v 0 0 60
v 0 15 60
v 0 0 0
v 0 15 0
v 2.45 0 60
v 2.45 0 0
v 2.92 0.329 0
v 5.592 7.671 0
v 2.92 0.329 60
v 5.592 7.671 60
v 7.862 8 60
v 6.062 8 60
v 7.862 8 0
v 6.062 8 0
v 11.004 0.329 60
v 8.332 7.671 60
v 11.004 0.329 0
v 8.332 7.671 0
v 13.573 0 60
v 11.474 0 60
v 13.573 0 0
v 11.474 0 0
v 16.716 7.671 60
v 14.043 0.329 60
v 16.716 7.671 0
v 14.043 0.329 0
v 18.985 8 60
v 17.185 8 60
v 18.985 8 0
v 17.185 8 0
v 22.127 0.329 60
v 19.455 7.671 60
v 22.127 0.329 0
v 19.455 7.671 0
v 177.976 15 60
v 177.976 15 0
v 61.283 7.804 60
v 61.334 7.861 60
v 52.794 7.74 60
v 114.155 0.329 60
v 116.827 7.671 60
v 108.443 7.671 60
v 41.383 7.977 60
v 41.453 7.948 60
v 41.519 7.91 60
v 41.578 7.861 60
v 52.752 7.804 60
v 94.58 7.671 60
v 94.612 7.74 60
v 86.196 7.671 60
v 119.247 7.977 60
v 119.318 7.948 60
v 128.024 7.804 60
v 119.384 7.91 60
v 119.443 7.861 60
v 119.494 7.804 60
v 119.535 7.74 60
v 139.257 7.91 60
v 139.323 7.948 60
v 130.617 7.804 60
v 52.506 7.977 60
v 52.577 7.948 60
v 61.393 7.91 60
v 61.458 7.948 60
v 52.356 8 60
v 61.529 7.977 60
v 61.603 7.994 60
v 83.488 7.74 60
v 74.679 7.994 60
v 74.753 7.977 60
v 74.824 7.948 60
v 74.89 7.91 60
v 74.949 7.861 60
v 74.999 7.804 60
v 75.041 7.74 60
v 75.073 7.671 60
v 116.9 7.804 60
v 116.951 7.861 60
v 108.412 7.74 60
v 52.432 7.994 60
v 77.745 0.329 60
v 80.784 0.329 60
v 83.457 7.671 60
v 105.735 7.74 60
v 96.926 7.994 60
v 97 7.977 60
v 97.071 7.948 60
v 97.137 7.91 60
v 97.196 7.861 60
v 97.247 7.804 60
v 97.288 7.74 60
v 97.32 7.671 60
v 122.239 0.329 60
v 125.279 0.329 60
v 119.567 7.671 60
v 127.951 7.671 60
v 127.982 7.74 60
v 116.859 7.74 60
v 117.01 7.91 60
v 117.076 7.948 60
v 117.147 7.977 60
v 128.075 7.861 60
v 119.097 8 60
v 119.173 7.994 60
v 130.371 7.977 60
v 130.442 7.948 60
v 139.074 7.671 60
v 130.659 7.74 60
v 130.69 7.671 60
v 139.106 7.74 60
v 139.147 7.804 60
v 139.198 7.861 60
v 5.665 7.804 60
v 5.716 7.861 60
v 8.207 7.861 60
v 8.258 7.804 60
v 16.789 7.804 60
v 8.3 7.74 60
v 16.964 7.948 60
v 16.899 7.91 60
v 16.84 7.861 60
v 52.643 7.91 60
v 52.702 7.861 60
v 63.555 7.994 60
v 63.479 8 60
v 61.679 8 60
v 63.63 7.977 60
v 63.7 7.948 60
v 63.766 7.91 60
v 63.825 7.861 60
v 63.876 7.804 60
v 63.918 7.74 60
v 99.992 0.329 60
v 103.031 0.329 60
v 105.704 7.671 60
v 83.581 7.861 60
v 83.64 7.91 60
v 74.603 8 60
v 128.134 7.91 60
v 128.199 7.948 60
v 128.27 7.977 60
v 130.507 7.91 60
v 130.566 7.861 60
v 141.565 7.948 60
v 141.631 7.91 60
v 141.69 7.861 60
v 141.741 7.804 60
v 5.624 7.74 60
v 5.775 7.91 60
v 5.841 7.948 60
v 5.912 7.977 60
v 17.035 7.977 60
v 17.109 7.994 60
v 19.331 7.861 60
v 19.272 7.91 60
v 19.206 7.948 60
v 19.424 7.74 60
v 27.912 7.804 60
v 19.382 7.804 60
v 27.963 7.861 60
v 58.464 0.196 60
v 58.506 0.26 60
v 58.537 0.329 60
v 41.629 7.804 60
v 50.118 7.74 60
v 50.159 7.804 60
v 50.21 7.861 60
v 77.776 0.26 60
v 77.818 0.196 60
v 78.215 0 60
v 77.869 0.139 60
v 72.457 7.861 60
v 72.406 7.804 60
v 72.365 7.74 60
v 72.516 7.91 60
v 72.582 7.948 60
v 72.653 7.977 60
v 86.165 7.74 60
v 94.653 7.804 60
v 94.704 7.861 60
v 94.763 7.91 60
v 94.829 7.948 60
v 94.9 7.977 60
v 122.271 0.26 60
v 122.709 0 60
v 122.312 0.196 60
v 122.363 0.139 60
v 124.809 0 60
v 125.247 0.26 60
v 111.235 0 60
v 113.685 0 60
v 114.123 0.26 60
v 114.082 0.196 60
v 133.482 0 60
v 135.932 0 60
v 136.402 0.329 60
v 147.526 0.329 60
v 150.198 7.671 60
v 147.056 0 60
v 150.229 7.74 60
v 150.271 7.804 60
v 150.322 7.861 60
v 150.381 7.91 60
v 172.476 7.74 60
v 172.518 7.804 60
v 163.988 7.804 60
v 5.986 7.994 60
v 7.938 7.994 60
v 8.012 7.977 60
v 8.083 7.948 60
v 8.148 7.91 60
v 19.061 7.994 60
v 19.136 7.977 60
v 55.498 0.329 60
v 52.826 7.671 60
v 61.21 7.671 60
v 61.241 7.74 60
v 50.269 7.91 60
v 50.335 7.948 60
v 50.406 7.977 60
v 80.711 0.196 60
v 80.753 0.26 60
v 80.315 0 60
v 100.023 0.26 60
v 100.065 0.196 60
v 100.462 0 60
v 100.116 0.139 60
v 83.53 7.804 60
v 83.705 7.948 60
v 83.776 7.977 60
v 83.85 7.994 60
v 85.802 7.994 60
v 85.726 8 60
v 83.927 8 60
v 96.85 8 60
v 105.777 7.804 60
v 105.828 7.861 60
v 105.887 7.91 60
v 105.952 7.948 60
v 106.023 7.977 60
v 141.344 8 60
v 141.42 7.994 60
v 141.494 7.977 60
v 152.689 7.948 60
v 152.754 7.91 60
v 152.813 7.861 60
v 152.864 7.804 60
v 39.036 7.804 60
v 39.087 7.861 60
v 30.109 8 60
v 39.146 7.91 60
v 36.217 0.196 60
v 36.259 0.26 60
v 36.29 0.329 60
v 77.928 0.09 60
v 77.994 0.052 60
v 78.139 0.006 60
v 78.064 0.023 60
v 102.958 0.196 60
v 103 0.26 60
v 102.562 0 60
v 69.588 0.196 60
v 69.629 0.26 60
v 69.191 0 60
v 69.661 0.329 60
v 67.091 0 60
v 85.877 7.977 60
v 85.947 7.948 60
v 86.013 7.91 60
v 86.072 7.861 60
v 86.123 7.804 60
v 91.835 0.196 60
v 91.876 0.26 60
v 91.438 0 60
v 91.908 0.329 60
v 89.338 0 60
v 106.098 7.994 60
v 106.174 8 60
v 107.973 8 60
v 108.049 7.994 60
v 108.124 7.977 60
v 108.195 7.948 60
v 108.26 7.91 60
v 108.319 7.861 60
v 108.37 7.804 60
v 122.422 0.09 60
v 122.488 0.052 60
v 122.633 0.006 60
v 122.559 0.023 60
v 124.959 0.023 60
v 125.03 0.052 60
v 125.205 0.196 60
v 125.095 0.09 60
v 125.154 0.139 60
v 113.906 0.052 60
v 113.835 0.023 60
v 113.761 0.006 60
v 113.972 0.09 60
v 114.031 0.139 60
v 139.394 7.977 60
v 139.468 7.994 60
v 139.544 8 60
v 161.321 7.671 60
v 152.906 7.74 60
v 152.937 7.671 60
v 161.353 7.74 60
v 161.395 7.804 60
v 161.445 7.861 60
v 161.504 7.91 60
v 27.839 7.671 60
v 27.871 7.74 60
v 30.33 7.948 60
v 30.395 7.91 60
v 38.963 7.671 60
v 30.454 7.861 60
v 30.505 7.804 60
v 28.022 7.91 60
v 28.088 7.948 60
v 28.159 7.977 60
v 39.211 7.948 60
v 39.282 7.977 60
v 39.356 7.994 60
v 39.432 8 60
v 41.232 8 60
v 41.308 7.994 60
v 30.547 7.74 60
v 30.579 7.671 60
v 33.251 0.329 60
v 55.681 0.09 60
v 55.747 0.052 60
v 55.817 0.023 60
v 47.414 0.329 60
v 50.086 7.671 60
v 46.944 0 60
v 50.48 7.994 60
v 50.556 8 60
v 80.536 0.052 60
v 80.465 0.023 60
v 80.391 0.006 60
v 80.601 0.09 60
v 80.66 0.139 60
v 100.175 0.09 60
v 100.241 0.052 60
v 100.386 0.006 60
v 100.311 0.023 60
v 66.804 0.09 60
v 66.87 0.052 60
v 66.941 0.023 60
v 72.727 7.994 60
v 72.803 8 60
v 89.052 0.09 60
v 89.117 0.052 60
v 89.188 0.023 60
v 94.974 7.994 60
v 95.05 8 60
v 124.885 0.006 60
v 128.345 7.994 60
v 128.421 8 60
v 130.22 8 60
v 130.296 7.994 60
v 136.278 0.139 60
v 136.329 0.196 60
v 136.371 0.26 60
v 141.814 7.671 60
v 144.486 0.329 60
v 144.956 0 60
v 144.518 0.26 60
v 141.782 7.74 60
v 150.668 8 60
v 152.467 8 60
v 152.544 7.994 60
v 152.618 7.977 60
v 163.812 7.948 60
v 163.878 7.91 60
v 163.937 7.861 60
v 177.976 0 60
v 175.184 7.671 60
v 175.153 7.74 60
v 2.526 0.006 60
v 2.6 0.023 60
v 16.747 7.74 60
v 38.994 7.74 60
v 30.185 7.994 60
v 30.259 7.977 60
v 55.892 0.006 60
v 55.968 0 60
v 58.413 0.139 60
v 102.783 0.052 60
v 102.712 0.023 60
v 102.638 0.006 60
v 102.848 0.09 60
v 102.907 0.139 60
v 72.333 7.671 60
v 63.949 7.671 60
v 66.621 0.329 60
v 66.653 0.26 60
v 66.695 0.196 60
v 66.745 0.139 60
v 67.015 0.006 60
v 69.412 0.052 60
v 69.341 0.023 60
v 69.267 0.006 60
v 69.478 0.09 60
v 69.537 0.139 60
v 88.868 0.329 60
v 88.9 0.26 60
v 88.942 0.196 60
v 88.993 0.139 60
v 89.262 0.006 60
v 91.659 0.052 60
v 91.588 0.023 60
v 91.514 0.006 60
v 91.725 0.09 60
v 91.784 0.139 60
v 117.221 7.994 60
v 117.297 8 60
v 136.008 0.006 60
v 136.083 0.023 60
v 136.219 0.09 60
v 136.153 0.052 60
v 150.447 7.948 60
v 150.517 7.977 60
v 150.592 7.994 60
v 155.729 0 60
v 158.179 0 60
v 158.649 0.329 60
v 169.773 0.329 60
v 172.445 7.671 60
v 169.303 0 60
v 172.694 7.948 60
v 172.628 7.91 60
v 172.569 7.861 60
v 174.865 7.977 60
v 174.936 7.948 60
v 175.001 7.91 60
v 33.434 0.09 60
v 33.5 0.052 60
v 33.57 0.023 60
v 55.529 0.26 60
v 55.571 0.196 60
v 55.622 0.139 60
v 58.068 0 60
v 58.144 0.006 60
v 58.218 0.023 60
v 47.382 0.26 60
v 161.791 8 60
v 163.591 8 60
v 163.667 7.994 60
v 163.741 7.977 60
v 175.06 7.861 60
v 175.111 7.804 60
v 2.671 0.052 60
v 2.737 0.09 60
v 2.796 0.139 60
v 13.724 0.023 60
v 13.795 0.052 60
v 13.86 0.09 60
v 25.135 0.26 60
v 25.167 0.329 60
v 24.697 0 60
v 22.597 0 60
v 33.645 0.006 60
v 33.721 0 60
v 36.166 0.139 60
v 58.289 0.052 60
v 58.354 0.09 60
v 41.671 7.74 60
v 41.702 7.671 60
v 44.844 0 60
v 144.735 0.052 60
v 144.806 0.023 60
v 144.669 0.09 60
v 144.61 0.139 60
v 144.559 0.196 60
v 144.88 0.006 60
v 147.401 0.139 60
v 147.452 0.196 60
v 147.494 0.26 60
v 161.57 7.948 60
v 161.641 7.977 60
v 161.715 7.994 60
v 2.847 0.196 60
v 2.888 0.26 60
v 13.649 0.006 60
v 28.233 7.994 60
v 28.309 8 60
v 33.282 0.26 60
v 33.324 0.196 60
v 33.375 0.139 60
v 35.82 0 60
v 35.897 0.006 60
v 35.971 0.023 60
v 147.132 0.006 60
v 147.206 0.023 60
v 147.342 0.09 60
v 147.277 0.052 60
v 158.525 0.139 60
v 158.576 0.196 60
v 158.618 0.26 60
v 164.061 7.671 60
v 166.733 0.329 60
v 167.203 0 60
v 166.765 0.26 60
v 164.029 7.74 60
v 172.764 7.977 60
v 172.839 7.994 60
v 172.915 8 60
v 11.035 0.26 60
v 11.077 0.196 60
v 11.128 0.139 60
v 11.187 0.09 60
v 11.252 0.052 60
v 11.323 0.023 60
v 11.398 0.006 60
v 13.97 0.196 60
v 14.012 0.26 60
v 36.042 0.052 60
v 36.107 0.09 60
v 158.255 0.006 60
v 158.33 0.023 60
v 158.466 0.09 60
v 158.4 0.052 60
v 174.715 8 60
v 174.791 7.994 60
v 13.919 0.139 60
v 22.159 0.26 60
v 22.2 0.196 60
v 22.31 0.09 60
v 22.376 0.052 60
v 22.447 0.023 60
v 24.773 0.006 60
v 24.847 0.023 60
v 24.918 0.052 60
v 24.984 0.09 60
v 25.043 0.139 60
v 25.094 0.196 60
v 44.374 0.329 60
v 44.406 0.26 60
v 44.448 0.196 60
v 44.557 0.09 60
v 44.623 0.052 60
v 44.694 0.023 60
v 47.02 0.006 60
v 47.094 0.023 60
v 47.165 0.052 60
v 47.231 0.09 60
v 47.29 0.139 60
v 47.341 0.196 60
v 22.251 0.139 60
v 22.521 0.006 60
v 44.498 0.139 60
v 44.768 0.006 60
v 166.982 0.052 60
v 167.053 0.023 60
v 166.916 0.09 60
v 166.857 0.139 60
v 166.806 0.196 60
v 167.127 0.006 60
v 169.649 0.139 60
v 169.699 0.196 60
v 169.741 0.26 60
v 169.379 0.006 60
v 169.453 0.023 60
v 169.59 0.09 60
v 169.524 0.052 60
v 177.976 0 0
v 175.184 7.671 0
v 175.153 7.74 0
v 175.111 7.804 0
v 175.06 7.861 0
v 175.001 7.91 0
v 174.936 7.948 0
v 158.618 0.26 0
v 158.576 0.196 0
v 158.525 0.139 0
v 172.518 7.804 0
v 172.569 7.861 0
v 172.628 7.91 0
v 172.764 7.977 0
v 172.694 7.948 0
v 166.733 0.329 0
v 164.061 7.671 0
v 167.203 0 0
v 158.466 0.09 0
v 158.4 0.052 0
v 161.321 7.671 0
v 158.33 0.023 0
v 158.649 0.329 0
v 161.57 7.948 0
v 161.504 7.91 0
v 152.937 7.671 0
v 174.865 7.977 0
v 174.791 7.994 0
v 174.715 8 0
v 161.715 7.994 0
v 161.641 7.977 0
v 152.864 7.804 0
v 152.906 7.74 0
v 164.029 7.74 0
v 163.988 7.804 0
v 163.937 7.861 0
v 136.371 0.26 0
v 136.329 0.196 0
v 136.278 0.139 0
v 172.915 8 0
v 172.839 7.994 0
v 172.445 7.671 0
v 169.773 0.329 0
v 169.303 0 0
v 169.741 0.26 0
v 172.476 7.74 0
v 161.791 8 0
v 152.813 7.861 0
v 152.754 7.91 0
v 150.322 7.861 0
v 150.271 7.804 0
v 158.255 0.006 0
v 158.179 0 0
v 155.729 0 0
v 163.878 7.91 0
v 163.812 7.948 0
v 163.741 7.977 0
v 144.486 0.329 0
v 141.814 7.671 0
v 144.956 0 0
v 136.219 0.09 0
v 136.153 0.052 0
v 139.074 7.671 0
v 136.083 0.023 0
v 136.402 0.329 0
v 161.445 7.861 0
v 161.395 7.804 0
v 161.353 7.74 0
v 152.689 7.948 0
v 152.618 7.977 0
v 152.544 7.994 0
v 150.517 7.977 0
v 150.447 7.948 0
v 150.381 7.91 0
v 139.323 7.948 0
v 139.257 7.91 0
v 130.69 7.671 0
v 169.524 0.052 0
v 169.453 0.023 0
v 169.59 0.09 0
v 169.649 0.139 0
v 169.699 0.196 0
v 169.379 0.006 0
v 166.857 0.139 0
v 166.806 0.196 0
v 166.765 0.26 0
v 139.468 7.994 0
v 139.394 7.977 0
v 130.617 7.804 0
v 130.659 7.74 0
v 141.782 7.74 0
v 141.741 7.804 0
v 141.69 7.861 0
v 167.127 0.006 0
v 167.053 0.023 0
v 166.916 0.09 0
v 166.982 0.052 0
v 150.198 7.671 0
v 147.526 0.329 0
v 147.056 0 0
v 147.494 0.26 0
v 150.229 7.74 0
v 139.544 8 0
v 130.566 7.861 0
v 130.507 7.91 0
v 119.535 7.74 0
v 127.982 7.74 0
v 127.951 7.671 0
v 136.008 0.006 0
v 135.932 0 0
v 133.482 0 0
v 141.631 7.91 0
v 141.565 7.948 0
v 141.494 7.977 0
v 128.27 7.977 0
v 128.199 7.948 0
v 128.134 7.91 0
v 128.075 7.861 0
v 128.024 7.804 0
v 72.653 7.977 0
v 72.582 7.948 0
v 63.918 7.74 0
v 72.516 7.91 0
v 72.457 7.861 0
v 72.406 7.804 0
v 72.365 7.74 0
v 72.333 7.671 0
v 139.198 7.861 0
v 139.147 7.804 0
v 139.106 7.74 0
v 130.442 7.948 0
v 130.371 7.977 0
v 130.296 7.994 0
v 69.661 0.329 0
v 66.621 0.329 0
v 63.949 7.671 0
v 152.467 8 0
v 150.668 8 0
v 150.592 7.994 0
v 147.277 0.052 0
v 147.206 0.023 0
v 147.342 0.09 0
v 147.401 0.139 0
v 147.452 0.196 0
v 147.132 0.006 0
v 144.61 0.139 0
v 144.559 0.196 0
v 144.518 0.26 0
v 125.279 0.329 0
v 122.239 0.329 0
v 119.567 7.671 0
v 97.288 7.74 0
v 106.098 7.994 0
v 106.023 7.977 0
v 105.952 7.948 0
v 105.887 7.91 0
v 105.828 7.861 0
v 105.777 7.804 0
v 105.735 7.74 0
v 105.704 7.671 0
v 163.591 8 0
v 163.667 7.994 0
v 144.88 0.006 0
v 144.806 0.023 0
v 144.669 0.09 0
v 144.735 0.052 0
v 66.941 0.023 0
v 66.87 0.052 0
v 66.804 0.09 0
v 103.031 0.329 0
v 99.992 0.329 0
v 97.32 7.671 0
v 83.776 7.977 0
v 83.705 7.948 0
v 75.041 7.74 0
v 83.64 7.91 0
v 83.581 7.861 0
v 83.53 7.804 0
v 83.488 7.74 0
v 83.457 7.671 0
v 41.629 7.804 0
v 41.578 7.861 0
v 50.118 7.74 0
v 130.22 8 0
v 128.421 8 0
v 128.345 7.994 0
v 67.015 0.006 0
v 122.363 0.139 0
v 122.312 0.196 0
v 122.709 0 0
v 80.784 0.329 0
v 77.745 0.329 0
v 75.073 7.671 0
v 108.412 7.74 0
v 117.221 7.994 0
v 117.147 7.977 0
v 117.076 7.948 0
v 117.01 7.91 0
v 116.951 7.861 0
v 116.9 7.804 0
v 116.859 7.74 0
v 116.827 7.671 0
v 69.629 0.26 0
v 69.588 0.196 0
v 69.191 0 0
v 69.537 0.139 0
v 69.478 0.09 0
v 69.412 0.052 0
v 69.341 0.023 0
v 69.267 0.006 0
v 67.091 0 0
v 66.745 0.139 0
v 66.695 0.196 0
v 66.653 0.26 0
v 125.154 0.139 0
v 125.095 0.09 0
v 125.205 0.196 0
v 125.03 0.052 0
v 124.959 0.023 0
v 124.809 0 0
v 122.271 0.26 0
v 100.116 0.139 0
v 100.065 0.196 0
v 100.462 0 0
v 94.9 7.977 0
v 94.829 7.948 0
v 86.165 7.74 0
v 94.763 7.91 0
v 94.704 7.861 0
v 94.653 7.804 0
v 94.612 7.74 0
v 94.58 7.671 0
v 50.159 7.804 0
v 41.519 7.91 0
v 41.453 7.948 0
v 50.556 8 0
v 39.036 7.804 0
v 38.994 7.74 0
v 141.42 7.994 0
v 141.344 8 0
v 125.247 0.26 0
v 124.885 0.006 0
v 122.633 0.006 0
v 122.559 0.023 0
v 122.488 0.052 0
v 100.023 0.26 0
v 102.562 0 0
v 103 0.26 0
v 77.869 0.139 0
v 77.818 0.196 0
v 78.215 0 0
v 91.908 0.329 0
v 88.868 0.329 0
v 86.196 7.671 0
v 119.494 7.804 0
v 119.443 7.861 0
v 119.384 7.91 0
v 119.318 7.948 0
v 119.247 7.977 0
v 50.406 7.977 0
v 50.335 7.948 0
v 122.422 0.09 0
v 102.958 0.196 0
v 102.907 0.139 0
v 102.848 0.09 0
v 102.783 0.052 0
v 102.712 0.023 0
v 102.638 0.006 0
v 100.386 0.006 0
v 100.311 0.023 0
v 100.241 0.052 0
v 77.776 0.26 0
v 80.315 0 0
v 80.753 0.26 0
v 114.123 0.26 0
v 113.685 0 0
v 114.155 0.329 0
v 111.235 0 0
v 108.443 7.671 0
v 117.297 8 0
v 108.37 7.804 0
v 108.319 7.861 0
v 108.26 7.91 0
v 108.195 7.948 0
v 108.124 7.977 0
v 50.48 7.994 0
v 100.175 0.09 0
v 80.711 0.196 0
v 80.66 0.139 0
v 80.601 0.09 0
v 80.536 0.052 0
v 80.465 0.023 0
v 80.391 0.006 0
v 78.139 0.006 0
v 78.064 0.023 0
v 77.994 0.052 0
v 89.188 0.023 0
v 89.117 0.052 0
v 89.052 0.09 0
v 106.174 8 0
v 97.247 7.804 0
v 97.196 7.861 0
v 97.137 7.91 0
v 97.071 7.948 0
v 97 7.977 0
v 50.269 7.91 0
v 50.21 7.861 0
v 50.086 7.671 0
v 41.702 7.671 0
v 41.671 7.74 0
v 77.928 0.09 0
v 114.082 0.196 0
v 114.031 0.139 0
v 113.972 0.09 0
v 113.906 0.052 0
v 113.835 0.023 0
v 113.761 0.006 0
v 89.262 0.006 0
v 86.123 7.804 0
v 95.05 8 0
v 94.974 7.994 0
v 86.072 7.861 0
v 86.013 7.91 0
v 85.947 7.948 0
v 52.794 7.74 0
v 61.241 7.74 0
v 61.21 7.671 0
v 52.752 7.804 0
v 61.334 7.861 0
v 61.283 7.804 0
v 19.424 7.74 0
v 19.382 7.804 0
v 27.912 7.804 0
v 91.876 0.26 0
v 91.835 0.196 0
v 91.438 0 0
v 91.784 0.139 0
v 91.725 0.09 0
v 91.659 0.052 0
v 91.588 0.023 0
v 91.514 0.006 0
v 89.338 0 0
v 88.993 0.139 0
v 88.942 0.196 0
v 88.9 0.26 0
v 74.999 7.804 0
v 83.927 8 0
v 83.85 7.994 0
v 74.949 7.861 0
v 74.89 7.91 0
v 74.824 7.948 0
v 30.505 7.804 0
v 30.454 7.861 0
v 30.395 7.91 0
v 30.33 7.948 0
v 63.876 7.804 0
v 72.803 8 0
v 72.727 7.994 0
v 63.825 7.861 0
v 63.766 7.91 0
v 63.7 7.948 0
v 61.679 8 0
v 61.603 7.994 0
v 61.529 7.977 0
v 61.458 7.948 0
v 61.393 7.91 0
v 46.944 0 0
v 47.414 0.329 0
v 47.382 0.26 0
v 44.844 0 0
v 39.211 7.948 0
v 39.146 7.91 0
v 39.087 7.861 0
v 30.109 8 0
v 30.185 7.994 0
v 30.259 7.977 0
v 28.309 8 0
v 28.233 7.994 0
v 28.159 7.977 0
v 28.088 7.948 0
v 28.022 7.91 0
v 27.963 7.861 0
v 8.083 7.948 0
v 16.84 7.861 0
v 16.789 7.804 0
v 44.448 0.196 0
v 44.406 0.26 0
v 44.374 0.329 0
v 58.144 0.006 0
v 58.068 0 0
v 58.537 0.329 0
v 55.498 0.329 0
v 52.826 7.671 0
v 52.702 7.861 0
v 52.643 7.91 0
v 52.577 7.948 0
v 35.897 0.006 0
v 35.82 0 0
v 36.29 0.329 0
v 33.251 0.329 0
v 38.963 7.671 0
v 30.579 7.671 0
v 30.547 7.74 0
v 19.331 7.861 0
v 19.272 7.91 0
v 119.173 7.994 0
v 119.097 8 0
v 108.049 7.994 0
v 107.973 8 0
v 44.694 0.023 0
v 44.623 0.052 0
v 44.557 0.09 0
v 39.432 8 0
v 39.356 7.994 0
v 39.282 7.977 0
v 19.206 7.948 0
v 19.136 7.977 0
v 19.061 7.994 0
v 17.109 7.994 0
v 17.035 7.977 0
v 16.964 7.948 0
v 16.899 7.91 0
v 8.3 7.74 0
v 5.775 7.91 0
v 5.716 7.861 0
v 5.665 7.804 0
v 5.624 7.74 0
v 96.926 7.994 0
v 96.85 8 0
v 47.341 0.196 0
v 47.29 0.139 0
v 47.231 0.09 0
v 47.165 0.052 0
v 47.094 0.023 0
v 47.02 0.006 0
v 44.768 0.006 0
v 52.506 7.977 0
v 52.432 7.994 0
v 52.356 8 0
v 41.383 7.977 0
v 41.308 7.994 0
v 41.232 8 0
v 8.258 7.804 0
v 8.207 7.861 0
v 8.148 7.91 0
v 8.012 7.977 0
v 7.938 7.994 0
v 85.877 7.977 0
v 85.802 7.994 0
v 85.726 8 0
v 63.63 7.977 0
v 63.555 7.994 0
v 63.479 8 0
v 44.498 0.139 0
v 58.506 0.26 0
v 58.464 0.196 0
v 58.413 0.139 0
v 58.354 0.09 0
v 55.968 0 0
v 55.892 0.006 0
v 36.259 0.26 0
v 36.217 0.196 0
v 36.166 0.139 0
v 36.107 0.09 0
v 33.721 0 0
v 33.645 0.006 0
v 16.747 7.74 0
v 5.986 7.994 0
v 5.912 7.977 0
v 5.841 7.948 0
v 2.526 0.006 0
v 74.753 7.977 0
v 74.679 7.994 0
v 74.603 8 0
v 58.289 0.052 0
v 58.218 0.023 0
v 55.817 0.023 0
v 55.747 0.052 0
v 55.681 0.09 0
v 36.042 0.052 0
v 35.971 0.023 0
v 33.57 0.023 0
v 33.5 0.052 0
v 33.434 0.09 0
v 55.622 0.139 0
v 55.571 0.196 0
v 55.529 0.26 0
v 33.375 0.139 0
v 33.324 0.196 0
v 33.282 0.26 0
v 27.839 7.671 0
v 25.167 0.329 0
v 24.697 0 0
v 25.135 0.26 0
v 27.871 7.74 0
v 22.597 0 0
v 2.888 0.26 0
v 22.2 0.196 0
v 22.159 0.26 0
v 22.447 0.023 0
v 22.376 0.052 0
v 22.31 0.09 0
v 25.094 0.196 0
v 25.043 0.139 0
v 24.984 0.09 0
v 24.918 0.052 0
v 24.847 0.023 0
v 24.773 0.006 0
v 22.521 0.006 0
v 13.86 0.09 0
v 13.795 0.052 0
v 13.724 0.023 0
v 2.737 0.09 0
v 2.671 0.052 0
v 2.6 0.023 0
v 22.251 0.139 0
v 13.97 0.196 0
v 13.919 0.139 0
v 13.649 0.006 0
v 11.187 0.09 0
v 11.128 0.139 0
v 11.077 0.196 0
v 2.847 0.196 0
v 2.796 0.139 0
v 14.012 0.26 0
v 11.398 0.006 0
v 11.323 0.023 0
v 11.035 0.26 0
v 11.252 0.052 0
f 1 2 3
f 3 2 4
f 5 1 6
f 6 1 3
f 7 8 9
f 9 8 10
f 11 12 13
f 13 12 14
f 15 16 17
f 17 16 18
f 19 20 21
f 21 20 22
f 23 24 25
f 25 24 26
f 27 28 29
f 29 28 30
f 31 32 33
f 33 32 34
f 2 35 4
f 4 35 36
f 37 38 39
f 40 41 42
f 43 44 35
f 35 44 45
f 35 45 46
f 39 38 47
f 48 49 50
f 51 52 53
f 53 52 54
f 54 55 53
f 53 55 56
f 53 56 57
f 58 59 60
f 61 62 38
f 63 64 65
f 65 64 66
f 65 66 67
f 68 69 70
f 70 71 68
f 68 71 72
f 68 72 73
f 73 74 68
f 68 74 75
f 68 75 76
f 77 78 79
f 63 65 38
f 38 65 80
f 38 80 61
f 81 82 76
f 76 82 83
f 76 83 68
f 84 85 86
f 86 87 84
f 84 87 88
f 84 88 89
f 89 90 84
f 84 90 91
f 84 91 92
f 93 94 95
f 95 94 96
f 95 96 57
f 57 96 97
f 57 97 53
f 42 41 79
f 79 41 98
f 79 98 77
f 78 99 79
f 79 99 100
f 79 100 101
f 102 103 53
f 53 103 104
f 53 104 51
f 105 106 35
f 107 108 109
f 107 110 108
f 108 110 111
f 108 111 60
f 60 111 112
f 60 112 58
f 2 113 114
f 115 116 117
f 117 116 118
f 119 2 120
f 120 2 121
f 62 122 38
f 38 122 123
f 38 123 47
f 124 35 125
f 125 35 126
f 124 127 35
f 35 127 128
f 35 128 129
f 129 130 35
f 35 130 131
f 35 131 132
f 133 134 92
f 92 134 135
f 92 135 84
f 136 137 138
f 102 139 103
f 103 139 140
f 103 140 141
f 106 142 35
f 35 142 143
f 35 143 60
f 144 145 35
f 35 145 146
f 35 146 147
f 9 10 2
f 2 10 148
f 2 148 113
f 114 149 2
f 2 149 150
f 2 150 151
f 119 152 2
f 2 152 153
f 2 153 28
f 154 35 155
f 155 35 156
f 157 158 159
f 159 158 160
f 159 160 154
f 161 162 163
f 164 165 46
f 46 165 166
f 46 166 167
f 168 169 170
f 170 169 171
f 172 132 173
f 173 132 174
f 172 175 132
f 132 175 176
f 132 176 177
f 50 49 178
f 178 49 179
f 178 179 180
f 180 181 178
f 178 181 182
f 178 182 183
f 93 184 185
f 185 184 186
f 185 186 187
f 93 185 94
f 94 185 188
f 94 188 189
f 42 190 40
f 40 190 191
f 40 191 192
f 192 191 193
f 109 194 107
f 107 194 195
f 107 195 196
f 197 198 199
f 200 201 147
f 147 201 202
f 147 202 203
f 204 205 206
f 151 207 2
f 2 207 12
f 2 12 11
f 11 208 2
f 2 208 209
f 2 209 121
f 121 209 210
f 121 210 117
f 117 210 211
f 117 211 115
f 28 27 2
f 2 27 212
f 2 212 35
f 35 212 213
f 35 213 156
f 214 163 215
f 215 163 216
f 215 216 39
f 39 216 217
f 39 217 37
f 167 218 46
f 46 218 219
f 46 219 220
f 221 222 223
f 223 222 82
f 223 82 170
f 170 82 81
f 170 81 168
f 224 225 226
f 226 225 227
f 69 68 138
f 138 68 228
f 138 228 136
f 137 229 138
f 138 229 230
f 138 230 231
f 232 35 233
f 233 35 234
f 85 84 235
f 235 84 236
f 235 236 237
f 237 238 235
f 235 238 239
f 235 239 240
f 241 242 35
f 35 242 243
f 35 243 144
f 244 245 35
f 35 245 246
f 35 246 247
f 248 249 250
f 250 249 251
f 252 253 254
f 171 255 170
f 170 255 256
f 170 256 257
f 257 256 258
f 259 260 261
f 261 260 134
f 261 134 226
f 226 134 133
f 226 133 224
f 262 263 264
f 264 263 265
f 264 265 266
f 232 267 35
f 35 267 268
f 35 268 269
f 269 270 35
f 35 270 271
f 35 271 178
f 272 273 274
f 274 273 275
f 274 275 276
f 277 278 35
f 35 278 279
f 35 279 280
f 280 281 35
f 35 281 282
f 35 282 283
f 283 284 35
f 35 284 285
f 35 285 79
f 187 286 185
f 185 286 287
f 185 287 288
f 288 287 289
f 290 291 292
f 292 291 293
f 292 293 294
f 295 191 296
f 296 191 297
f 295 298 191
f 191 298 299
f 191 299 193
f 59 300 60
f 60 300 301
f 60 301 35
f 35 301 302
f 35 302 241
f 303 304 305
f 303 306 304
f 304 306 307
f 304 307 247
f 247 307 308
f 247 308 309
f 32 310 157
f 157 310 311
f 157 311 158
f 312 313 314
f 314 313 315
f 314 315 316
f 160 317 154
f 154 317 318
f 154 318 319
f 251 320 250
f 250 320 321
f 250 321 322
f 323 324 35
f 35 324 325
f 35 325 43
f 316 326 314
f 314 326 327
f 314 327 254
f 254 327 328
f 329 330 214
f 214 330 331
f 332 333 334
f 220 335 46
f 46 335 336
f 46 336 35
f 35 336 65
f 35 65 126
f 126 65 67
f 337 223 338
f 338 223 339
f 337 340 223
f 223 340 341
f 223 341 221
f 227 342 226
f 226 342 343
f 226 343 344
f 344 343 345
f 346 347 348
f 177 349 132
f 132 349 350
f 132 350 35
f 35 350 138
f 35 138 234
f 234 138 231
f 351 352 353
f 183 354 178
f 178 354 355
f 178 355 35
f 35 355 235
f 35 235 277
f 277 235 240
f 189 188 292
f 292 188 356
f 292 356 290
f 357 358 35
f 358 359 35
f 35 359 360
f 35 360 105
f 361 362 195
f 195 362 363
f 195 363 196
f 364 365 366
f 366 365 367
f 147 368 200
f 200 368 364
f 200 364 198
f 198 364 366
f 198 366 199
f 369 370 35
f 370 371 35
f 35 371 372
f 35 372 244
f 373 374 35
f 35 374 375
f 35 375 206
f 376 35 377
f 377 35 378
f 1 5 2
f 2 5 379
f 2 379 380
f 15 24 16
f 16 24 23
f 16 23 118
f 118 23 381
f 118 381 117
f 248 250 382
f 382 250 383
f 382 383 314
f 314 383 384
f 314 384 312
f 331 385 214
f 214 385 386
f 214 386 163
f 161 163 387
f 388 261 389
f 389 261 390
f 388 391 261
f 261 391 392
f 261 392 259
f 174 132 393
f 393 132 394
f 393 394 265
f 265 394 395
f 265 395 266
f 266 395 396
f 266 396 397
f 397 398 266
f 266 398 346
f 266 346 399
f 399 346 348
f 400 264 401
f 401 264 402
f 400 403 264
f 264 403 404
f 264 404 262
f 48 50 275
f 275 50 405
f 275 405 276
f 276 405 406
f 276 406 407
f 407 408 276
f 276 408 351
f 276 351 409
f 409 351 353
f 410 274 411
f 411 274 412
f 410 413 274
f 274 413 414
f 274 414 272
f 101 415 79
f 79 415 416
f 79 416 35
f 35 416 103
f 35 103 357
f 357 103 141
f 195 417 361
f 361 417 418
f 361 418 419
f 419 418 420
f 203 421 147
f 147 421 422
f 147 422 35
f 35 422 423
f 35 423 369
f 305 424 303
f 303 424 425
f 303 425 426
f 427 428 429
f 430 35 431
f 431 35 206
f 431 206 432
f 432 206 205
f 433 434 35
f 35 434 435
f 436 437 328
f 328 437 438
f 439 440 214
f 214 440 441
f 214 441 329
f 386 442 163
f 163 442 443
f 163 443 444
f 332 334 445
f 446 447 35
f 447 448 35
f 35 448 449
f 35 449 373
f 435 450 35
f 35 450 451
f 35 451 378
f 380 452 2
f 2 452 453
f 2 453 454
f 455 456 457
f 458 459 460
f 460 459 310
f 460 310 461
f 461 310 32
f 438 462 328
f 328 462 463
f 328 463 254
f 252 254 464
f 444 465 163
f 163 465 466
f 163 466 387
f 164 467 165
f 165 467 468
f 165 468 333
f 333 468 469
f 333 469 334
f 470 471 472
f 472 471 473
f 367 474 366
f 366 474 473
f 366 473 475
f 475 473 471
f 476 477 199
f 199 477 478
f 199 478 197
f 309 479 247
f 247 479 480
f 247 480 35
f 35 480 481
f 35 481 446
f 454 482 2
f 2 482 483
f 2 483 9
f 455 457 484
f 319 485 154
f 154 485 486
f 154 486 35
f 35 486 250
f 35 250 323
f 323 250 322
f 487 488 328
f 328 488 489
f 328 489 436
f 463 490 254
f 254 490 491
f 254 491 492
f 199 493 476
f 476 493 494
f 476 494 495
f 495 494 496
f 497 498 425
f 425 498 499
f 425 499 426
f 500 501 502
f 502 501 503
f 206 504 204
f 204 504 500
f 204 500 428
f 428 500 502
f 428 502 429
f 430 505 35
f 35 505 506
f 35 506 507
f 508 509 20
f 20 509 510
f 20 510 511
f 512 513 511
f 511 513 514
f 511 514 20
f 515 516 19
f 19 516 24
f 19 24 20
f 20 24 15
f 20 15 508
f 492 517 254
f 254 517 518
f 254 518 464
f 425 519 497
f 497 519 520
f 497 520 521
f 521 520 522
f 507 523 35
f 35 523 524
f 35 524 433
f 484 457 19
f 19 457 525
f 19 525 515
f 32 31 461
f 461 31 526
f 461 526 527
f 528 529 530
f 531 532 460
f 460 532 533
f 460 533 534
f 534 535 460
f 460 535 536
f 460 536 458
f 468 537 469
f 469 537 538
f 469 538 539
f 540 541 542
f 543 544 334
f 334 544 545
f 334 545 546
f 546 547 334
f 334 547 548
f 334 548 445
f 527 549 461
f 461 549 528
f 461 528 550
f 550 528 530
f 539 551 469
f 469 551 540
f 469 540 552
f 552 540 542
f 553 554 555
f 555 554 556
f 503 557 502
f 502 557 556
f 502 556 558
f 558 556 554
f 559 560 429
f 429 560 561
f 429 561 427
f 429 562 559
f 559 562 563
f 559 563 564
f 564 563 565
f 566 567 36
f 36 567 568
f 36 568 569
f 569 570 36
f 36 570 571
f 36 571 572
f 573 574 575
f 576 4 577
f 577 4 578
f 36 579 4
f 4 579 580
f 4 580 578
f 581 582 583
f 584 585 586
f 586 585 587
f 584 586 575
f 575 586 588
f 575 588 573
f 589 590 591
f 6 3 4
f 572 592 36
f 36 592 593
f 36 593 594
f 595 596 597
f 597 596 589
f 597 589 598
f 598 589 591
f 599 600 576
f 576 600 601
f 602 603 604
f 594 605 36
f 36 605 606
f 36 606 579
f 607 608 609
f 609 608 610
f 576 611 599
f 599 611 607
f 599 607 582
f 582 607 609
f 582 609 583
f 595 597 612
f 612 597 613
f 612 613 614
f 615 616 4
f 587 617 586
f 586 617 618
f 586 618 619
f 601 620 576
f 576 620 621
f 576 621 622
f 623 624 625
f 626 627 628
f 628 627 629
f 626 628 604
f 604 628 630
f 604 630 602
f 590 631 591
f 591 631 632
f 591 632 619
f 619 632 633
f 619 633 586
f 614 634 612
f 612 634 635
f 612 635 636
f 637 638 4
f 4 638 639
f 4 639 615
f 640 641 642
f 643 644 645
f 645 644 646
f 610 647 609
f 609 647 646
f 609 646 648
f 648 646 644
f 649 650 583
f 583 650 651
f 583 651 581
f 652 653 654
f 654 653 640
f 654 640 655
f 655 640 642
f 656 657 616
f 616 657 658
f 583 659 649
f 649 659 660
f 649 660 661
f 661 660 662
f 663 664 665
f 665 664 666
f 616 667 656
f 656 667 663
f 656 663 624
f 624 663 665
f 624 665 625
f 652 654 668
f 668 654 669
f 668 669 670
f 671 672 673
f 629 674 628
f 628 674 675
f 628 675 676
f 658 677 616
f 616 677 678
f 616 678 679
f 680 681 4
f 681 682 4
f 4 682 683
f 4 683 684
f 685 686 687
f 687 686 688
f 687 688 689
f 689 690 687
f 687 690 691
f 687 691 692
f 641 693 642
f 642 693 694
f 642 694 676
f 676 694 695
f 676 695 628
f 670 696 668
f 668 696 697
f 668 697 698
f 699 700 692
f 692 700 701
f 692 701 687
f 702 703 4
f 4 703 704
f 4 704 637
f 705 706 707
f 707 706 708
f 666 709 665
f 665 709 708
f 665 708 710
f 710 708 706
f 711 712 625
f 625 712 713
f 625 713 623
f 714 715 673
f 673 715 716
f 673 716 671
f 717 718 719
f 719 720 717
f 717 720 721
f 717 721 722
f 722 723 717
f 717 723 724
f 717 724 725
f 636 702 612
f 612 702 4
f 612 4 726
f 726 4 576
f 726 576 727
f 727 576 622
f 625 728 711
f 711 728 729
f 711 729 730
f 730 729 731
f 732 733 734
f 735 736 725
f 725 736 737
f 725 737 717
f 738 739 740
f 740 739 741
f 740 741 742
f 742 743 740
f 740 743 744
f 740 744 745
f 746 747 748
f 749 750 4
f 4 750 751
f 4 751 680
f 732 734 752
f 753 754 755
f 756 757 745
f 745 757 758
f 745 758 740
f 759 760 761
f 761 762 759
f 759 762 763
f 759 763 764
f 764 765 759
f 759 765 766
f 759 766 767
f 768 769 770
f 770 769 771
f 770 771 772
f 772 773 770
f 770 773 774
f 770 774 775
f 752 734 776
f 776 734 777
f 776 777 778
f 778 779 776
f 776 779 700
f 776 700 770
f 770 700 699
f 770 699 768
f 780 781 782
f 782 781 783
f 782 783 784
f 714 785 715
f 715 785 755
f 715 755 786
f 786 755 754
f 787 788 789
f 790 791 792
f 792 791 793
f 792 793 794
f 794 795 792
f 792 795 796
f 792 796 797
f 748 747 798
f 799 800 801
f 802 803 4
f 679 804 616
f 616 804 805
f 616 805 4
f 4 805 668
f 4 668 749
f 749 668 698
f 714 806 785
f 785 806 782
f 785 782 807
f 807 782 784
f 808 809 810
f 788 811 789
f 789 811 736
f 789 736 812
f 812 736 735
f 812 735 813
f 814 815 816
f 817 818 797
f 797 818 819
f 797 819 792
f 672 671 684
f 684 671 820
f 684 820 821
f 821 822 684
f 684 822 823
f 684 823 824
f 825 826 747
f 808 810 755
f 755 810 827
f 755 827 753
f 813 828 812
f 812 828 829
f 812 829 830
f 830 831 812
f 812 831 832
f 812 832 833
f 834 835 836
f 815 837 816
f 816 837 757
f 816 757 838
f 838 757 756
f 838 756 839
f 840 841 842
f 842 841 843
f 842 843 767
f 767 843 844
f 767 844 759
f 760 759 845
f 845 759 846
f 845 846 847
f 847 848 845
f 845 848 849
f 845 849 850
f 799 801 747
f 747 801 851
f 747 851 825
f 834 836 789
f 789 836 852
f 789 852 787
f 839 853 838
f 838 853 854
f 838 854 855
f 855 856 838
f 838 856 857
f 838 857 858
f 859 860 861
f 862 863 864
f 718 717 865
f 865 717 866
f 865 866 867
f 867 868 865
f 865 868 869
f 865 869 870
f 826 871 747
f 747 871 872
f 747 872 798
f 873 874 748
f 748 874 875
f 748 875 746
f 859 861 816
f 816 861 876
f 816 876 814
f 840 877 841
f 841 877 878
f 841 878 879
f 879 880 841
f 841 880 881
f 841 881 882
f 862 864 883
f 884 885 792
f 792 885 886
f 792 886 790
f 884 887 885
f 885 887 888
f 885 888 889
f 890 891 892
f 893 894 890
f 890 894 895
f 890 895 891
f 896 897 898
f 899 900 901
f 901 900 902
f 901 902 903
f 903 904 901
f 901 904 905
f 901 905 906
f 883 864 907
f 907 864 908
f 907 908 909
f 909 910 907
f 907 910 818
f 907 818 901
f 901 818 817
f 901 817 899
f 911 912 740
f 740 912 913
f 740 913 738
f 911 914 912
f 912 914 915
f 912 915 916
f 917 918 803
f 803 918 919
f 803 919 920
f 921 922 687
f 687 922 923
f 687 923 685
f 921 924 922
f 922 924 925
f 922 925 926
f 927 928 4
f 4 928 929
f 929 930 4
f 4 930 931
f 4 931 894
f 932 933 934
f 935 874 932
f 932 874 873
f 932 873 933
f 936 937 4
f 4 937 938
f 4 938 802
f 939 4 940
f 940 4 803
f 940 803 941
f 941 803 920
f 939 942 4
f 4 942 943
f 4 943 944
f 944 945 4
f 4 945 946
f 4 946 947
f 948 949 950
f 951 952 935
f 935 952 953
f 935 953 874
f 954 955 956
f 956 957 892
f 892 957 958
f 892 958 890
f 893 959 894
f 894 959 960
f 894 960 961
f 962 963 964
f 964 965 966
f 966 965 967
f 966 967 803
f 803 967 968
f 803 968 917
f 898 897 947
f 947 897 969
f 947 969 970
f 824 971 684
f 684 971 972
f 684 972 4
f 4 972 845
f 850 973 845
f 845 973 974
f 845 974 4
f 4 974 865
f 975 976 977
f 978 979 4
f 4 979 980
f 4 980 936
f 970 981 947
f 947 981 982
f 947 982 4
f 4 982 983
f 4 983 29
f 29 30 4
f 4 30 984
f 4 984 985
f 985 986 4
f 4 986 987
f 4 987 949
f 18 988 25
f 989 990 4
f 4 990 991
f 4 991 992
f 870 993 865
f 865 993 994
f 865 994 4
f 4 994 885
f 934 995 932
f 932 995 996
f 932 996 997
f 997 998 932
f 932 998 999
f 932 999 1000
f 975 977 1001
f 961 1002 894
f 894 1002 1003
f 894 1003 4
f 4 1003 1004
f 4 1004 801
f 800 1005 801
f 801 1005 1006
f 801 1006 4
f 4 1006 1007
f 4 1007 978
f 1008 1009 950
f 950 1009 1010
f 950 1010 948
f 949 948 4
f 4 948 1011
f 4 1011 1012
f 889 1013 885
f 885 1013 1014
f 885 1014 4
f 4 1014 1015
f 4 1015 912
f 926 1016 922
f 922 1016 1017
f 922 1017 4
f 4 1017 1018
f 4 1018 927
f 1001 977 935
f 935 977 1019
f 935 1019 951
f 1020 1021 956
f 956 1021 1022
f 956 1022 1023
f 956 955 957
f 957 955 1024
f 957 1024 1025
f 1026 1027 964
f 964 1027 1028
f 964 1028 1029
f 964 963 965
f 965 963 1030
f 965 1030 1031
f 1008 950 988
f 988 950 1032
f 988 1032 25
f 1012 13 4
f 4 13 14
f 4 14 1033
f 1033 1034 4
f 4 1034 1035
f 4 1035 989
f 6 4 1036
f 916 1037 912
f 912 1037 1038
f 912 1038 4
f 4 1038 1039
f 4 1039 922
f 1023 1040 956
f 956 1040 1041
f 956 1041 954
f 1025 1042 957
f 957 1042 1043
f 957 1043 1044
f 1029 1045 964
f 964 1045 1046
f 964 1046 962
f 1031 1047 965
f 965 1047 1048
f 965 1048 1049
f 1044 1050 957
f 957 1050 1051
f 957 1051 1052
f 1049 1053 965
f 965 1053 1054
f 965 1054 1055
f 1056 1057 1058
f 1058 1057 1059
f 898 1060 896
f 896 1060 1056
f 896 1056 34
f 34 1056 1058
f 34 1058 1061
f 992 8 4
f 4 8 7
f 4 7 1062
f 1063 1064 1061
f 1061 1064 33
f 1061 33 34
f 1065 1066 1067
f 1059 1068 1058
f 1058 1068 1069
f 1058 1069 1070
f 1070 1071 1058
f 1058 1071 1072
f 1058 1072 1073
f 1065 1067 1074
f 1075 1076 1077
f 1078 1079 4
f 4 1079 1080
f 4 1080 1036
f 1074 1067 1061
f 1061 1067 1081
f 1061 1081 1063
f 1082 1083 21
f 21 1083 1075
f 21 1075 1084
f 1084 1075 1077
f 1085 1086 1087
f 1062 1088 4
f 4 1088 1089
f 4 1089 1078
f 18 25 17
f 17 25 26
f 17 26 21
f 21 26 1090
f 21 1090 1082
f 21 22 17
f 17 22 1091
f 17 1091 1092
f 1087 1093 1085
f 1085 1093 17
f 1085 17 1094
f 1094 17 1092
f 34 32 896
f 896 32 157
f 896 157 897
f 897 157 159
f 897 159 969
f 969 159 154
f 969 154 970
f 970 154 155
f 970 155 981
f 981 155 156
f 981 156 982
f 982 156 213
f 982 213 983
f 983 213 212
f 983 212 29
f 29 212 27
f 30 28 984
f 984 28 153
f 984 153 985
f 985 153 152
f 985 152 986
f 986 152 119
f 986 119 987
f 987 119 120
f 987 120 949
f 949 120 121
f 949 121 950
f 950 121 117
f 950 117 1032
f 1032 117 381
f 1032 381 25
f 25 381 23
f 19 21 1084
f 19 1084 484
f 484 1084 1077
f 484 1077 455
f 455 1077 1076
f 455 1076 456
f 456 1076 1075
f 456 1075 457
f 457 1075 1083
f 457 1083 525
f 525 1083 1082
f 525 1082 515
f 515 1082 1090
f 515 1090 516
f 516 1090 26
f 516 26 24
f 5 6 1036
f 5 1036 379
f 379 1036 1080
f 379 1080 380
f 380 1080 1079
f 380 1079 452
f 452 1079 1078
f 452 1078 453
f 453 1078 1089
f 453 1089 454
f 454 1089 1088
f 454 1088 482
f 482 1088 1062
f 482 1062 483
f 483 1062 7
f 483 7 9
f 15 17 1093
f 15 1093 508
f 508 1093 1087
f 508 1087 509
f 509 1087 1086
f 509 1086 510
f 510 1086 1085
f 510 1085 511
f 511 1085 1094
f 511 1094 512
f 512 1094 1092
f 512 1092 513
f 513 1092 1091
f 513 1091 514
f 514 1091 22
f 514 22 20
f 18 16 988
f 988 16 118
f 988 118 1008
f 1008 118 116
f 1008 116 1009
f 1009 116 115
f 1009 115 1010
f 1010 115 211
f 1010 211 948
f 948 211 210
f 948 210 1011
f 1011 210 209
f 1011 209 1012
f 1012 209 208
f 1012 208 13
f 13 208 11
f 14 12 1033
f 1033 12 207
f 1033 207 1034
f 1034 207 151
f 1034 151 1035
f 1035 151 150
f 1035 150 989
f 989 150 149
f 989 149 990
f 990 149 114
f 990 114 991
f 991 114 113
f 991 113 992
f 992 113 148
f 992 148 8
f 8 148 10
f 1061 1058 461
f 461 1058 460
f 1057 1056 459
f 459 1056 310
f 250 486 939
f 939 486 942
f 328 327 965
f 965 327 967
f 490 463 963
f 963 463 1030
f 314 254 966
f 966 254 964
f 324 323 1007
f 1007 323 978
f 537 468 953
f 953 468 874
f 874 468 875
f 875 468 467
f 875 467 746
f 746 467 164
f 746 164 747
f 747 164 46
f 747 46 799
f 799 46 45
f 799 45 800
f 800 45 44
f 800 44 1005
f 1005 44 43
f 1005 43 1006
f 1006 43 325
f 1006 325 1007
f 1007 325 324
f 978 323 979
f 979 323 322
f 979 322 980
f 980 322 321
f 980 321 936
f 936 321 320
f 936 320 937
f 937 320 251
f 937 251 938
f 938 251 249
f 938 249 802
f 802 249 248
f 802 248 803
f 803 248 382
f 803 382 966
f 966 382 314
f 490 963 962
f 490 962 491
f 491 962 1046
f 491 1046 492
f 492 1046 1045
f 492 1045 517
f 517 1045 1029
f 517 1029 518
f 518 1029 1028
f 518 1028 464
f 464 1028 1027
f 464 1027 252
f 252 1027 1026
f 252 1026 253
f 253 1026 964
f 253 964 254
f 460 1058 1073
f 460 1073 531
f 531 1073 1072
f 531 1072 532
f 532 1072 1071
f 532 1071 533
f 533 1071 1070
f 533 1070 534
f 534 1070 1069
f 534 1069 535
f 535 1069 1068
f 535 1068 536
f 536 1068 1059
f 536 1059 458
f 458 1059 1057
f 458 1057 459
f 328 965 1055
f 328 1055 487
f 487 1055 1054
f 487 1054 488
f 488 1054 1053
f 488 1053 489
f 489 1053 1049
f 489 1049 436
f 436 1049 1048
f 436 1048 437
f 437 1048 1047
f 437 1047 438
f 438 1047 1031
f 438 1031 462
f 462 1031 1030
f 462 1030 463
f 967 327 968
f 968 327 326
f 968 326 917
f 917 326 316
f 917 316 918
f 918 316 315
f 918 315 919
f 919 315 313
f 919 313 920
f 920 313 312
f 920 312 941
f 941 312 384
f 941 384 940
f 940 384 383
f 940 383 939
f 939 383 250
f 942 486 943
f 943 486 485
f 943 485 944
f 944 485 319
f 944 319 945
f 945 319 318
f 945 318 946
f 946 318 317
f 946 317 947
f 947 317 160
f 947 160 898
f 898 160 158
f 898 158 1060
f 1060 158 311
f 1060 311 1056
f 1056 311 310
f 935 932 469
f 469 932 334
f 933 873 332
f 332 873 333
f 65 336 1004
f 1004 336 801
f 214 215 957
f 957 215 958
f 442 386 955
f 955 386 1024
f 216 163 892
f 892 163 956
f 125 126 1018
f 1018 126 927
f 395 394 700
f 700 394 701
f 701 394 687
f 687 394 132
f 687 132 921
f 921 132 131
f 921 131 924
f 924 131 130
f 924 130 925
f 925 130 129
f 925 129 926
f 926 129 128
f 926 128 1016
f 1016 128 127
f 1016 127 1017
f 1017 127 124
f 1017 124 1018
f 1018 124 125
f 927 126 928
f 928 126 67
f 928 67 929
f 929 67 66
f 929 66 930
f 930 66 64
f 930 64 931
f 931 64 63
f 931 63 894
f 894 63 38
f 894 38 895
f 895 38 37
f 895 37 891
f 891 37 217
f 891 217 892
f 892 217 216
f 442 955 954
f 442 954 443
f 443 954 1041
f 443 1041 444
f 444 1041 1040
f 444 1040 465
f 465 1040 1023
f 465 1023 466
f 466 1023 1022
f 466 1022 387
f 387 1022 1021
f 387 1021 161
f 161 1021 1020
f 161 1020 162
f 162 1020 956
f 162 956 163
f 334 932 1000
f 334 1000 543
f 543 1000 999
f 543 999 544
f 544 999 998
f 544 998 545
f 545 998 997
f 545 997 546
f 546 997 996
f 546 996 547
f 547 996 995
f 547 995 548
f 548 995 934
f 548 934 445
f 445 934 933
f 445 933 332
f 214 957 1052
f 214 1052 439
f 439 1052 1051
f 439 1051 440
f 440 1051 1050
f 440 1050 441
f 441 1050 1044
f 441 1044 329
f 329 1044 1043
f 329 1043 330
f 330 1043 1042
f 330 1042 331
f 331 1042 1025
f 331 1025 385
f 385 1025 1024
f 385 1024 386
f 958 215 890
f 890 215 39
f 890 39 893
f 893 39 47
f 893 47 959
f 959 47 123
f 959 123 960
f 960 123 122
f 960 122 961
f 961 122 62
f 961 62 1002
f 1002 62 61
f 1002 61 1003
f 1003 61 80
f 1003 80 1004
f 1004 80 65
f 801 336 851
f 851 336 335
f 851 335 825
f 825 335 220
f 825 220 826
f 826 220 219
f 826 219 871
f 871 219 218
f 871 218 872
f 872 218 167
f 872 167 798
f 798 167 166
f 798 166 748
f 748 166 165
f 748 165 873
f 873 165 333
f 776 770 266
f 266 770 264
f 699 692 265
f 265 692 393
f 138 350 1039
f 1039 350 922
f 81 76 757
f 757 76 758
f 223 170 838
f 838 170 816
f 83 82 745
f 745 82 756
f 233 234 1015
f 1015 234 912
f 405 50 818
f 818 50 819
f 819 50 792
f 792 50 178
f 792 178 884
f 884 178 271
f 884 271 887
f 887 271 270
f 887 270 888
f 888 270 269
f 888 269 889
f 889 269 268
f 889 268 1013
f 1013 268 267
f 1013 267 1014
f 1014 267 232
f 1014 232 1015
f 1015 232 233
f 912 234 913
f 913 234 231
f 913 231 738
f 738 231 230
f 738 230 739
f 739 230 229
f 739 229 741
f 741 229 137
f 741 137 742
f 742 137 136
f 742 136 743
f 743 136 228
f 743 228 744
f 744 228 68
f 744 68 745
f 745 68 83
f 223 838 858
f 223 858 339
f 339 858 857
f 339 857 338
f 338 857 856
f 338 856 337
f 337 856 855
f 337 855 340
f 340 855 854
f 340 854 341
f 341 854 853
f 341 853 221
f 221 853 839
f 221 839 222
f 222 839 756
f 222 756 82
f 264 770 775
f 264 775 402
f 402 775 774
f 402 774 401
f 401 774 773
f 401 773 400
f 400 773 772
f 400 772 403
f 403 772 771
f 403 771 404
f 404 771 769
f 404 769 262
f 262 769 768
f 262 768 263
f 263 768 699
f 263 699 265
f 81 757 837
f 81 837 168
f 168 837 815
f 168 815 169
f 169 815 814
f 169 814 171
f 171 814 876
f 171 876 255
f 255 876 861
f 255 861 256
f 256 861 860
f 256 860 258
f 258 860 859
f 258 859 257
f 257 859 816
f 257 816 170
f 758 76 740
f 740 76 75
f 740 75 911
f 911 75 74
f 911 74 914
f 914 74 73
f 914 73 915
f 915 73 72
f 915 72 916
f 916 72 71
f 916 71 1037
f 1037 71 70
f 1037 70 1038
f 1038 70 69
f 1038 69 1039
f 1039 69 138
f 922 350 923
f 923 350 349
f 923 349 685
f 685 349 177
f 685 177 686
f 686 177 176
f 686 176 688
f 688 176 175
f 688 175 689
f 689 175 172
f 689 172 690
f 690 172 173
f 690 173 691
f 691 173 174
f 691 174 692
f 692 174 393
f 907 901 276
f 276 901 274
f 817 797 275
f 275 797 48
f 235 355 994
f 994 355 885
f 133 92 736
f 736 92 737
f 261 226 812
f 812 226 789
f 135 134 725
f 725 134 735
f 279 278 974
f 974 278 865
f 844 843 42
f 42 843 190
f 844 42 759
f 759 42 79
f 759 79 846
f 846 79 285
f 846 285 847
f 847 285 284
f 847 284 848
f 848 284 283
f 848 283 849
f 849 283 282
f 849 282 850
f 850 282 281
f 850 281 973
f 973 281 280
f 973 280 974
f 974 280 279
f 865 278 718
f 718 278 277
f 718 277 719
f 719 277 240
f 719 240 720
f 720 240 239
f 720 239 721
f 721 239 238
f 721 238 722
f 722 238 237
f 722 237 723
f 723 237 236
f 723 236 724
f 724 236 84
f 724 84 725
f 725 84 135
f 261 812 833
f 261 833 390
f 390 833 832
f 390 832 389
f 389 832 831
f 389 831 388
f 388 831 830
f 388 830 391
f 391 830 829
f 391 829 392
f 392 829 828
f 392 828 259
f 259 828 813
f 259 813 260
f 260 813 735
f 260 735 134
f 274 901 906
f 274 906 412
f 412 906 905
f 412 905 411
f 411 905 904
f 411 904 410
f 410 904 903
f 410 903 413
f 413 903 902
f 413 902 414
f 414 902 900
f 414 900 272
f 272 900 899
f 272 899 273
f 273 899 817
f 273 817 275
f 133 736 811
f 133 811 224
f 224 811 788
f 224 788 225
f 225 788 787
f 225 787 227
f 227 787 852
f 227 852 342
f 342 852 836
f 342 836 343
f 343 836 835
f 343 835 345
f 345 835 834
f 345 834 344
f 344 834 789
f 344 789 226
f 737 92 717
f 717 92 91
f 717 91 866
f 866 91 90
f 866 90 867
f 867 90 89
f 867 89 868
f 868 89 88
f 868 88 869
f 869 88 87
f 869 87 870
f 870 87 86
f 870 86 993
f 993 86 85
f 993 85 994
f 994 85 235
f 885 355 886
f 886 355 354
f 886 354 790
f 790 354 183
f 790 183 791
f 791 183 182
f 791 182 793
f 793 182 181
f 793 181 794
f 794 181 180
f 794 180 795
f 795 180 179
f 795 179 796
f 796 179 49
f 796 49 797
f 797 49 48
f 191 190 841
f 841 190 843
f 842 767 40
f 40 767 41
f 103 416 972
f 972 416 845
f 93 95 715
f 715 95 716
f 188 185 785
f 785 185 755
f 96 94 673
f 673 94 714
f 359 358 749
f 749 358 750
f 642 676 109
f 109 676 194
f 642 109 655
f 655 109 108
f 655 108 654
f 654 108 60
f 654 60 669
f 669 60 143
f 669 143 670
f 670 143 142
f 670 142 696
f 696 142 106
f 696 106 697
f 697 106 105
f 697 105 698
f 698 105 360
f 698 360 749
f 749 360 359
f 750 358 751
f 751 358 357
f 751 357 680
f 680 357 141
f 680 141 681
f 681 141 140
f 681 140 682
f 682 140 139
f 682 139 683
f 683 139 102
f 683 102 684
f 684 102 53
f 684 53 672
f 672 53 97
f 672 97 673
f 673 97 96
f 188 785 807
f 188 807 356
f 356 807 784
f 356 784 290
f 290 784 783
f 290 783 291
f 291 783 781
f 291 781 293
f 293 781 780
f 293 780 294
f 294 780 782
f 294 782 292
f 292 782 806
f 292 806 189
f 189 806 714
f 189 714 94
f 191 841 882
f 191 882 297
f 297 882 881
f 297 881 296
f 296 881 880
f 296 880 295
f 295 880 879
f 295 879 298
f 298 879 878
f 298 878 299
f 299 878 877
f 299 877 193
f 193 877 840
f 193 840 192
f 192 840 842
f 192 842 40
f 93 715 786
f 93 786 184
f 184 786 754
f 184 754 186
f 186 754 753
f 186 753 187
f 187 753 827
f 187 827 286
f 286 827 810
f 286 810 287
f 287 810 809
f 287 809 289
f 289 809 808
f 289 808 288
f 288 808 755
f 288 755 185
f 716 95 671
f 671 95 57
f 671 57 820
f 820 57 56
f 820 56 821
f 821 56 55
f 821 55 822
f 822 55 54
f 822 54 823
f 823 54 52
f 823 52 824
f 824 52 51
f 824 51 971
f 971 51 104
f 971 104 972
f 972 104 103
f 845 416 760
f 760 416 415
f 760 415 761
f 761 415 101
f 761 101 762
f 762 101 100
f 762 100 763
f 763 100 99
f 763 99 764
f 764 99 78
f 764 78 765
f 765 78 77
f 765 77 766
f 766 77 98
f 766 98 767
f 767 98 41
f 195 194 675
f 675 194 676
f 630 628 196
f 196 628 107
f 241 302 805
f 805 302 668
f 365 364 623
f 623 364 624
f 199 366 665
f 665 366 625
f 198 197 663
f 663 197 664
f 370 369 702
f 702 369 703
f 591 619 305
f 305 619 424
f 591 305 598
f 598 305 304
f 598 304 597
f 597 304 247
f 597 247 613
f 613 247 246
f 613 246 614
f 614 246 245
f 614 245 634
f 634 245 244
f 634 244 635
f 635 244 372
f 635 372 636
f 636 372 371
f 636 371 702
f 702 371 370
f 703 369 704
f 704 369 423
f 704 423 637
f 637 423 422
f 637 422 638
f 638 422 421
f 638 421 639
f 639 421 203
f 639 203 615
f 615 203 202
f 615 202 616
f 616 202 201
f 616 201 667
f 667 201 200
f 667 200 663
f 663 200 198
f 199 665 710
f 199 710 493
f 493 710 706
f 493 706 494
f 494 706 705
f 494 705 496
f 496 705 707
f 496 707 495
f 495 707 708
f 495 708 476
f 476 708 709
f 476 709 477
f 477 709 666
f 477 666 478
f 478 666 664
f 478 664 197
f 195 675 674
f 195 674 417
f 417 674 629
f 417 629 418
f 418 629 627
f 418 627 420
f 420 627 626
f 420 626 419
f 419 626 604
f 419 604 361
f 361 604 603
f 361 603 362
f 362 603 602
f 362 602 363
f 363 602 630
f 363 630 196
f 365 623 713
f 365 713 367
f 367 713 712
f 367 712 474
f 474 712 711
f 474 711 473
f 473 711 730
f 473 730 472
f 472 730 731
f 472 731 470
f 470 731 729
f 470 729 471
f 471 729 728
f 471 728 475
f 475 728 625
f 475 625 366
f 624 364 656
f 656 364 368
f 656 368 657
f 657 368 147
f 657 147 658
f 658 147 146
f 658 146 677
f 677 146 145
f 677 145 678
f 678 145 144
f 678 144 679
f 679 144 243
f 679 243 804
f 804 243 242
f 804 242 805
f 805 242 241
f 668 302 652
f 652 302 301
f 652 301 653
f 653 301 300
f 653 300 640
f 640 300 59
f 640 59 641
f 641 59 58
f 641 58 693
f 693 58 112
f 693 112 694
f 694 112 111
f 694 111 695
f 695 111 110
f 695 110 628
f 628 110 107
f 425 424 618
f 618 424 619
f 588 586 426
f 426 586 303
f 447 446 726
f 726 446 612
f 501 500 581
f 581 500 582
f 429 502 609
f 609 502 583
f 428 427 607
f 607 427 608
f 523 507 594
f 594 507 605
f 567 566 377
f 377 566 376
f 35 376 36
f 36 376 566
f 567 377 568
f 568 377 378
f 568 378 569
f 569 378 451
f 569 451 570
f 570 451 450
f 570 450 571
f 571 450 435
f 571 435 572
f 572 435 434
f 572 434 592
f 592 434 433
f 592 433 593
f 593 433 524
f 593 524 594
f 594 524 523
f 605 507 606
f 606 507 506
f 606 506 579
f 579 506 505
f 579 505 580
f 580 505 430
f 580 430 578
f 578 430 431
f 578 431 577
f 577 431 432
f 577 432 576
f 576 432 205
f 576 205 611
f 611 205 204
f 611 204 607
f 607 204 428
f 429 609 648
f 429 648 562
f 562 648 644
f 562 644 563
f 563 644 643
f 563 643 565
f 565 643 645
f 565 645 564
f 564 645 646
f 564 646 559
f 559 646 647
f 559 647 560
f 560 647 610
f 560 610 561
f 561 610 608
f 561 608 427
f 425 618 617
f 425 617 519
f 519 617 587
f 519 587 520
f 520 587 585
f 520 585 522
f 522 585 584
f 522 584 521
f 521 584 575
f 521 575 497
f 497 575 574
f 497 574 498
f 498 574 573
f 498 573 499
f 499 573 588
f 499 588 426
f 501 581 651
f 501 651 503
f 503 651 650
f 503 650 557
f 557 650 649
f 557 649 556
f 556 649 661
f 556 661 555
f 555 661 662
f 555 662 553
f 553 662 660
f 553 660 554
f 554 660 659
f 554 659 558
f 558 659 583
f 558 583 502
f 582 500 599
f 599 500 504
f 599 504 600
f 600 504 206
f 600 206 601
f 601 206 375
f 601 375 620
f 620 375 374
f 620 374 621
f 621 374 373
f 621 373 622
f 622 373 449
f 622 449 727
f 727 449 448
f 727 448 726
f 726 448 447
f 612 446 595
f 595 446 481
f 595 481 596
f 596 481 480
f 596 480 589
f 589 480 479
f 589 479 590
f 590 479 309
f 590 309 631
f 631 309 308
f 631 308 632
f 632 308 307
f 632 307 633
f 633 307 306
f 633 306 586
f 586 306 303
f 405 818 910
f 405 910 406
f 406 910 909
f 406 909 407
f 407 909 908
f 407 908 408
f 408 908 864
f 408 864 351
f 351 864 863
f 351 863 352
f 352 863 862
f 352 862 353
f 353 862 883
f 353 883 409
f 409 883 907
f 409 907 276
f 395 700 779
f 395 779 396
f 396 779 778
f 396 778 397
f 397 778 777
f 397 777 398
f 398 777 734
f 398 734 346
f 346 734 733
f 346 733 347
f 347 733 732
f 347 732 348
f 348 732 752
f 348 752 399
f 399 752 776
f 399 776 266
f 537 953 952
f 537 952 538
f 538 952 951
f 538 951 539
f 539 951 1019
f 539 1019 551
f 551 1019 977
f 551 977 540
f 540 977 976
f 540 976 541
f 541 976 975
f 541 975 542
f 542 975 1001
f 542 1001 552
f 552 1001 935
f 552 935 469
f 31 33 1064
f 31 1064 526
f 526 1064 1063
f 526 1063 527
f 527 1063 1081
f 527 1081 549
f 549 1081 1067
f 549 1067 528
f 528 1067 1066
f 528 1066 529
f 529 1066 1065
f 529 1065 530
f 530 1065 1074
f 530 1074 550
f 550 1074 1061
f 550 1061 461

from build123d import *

# Parameters (mm, degrees)
BOSS_EXTRUDE1_DEPTH = 60
FILLET1_R           = 0.5
LPATTERN1_COUNT     = 8
LPATTERN1_PITCH     = 22.2470475
FILLET2_R           = 0.5


with BuildPart() as part:
    # Sketch1 → Boss-Extrude1 (new body)
    with BuildSketch(Plane.XY):
        Polygon((0, 0), (2.8, 0), (5.711761874, 8), (8.211761874, 8), (11.123523748, 0), (13.923523748, 0), (16.835285622, 8), (19.335285622, 8), (22.247047497, 0), (22.247047497, 15), (0, 15), align=None)
    extrude(amount=BOSS_EXTRUDE1_DEPTH)

    # Fillet1
    fillet1_edges = [part.edges().sort_by_distance(p)[0] for p in [
        (19.335285622, 8, 30),
        (16.835285622, 8, 30),
        (13.923523748, 0, 30),
        (11.123523748, 0, 30),
        (8.211761874, 8, 30),
        (5.711761874, 8, 30),
        (2.8, 0, 30),
    ]]
    fillet(fillet1_edges, radius=FILLET1_R)


with BuildPart() as lpattern1_1:
    # LPattern1: pattern copy
    add(part.part.moved(Location(Vector(1, 0, 0) * (1 * LPATTERN1_PITCH))))


with BuildPart() as lpattern1_2:
    # LPattern1: pattern copy
    add(part.part.moved(Location(Vector(1, 0, 0) * (2 * LPATTERN1_PITCH))))


with BuildPart() as lpattern1_3:
    # LPattern1: pattern copy
    add(part.part.moved(Location(Vector(1, 0, 0) * (3 * LPATTERN1_PITCH))))


with BuildPart() as lpattern1_4:
    # LPattern1: pattern copy
    add(part.part.moved(Location(Vector(1, 0, 0) * (4 * LPATTERN1_PITCH))))


with BuildPart() as lpattern1_5:
    # LPattern1: pattern copy
    add(part.part.moved(Location(Vector(1, 0, 0) * (5 * LPATTERN1_PITCH))))


with BuildPart() as lpattern1_6:
    # LPattern1: pattern copy
    add(part.part.moved(Location(Vector(1, 0, 0) * (6 * LPATTERN1_PITCH))))


with BuildPart() as lpattern1_7:
    # LPattern1: pattern copy
    add(part.part.moved(Location(Vector(1, 0, 0) * (7 * LPATTERN1_PITCH))))


with BuildPart() as part_1:
    add(part.part)

    # Combine1: union LPattern1_1, LPattern1_2, LPattern1_3, LPattern1_4, LPattern1_5, LPattern1_6, LPattern1_7
    add(lpattern1_1.part)
    add(lpattern1_2.part)
    add(lpattern1_3.part)
    add(lpattern1_4.part)
    add(lpattern1_5.part)
    add(lpattern1_6.part)
    add(lpattern1_7.part)

    # Fillet2
    fillet2_edges = [part_1.edges().sort_by_distance(p)[0] for p in [
        (44.494094997, 0, 30),
        (66.741142497, 0, 30),
        (88.988189997, 0, 30),
        (22.247047497, 0, 30),
    ]]
    fillet(fillet2_edges, radius=FILLET2_R)


solid = part_1.part
